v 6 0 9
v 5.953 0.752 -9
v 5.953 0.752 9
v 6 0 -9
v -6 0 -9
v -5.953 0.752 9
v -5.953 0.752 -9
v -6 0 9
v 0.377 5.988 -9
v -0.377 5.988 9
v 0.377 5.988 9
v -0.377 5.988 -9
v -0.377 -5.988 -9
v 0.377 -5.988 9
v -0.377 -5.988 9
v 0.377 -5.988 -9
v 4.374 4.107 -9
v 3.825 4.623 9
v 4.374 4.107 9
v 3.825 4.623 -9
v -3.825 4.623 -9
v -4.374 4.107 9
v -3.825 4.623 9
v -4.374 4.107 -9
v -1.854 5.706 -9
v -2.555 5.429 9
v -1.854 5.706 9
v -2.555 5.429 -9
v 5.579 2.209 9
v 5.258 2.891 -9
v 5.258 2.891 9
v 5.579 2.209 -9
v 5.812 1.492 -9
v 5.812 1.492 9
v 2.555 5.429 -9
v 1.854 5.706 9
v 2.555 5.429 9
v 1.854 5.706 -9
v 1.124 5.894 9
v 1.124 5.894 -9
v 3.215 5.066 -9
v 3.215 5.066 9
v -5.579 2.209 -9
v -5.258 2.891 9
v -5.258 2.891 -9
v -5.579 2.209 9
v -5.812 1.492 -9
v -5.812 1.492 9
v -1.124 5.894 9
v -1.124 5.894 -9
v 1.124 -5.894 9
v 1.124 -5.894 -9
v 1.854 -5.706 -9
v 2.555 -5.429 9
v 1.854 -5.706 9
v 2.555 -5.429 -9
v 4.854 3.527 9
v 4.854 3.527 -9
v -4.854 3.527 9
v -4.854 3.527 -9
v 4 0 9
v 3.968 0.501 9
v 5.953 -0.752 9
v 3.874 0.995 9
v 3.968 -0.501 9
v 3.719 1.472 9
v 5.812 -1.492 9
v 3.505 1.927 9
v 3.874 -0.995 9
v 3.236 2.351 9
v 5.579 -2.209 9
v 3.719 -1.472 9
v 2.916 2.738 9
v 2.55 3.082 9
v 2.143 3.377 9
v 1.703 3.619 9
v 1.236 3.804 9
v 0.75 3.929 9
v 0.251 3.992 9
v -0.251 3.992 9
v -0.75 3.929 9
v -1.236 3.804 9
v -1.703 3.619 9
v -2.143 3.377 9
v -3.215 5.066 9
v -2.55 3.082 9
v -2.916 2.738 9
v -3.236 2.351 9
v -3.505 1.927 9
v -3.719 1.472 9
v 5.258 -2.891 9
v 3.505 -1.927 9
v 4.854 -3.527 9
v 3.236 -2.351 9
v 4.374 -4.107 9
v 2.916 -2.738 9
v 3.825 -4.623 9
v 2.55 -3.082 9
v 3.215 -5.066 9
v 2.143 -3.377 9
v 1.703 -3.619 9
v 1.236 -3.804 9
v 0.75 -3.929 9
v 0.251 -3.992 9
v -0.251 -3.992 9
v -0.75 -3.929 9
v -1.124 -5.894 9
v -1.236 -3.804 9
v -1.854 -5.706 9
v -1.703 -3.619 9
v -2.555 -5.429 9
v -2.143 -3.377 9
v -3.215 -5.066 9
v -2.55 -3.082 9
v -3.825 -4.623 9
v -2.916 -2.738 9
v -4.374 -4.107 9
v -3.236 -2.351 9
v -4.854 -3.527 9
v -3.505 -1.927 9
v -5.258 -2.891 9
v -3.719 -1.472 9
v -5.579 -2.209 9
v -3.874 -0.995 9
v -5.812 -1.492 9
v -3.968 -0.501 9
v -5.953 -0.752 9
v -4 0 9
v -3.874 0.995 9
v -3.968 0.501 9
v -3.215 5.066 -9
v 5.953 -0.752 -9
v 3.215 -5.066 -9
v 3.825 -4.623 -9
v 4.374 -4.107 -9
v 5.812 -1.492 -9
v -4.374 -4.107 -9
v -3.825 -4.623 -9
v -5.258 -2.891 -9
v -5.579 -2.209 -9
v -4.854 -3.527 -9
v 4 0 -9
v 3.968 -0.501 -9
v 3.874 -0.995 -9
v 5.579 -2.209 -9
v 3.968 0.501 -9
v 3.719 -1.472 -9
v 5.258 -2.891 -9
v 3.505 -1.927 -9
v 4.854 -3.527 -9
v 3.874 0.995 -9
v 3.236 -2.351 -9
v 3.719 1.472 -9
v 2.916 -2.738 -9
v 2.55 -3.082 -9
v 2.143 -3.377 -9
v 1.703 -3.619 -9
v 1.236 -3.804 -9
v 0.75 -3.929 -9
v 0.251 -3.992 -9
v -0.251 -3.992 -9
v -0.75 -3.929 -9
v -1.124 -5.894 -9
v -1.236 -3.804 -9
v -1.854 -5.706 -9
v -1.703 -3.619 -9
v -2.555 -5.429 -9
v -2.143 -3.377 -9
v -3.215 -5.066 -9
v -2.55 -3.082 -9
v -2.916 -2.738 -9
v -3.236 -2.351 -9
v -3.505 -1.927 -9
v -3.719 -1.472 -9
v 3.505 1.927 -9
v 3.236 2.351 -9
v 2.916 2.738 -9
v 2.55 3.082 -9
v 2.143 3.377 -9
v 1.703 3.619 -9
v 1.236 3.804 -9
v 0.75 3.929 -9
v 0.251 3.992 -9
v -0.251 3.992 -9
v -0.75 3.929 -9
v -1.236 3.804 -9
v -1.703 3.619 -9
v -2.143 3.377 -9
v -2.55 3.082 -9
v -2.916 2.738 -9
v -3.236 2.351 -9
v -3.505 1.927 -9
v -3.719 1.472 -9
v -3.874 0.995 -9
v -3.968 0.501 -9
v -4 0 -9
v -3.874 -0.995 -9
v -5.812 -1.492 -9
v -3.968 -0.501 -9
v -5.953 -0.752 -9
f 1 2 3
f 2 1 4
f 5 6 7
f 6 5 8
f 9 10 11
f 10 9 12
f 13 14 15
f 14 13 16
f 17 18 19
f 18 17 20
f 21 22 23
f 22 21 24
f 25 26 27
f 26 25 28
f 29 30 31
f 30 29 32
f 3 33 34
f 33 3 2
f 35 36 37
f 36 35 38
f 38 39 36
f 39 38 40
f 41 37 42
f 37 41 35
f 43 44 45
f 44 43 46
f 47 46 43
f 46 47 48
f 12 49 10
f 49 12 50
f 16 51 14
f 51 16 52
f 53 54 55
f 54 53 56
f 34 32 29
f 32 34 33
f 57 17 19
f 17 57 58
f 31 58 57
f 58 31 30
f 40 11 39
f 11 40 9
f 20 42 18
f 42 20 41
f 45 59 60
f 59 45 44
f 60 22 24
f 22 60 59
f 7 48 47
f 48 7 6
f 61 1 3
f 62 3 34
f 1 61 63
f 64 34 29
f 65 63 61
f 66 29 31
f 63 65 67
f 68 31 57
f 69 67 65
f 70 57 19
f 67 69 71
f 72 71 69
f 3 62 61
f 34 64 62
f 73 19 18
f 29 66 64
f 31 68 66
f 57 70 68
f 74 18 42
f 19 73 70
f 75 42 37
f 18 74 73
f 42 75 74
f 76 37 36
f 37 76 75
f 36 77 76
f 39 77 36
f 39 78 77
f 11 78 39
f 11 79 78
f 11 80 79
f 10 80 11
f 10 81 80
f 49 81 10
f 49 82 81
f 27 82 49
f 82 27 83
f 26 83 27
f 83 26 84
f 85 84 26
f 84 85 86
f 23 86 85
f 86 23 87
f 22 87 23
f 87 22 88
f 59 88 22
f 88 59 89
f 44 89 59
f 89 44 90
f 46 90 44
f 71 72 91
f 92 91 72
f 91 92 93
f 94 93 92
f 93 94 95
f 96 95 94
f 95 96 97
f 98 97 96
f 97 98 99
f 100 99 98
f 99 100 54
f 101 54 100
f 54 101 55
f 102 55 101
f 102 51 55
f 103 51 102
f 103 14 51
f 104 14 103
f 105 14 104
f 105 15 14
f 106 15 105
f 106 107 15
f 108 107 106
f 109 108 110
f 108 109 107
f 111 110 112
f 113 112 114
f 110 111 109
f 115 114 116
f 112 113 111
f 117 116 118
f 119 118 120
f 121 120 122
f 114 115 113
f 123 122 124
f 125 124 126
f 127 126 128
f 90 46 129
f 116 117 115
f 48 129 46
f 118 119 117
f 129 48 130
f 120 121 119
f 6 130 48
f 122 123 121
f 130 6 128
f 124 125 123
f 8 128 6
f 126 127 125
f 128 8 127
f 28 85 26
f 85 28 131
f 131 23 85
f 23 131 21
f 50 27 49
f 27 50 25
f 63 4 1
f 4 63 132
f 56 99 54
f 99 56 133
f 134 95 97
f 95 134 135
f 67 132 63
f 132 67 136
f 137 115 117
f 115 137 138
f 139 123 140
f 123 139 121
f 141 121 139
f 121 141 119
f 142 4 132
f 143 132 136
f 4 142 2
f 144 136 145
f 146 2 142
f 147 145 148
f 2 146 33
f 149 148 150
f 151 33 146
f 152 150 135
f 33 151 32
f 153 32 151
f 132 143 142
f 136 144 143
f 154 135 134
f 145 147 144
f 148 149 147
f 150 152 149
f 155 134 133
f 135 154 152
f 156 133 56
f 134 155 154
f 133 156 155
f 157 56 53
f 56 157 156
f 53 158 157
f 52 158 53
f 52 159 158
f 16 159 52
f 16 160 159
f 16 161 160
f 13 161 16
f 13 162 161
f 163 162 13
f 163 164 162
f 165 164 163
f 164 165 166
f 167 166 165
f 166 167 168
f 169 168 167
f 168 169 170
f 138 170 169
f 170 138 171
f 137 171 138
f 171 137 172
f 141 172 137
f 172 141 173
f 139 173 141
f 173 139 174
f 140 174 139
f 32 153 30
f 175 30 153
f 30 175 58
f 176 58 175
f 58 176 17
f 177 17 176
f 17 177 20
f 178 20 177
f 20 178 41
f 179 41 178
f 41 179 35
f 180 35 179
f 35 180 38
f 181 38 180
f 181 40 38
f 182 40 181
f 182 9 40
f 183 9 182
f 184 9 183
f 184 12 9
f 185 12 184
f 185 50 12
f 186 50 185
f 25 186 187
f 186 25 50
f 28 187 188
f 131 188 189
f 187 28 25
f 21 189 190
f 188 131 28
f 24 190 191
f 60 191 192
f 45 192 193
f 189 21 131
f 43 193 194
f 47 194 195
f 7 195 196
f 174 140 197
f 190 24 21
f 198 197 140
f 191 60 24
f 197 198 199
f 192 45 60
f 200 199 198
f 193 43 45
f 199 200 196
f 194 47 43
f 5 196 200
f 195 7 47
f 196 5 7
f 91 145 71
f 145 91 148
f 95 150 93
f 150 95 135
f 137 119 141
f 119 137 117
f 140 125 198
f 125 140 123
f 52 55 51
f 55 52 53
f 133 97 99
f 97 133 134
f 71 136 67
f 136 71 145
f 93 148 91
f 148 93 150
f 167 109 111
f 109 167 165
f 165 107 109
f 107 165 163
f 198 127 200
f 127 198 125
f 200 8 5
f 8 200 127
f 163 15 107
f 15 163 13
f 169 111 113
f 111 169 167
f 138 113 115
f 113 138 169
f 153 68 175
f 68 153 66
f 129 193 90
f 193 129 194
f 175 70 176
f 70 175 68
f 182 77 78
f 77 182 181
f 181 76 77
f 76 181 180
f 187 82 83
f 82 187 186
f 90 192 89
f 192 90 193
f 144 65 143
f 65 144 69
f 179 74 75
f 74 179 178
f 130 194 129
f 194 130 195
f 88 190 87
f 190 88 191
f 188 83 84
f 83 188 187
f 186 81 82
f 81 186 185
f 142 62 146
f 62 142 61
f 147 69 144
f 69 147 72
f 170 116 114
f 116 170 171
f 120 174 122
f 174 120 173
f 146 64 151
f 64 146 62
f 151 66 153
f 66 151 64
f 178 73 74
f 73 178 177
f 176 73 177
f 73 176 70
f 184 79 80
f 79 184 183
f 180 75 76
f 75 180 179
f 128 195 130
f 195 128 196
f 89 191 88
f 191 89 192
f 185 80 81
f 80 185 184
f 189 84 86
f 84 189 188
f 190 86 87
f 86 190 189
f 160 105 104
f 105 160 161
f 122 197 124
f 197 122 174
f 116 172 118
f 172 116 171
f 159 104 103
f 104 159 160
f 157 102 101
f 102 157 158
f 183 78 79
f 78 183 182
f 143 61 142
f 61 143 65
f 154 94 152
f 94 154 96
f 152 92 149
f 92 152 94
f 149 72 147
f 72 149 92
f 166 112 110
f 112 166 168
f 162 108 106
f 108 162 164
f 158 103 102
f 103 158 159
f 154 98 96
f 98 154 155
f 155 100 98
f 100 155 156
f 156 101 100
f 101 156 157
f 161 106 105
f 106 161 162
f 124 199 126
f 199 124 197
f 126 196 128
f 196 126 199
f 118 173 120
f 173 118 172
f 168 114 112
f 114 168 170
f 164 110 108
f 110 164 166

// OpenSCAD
$fn = 50;


difference() {
	union() {
		translate(v = [0, 0, -9.0000000000]) {
			cylinder(h = 18, r = 6.0000000000);
		}
	}
	union() {
		translate(v = [0, 0, -100.0000000000]) {
			cylinder(h = 200, r = 4);
		}
	}
}
